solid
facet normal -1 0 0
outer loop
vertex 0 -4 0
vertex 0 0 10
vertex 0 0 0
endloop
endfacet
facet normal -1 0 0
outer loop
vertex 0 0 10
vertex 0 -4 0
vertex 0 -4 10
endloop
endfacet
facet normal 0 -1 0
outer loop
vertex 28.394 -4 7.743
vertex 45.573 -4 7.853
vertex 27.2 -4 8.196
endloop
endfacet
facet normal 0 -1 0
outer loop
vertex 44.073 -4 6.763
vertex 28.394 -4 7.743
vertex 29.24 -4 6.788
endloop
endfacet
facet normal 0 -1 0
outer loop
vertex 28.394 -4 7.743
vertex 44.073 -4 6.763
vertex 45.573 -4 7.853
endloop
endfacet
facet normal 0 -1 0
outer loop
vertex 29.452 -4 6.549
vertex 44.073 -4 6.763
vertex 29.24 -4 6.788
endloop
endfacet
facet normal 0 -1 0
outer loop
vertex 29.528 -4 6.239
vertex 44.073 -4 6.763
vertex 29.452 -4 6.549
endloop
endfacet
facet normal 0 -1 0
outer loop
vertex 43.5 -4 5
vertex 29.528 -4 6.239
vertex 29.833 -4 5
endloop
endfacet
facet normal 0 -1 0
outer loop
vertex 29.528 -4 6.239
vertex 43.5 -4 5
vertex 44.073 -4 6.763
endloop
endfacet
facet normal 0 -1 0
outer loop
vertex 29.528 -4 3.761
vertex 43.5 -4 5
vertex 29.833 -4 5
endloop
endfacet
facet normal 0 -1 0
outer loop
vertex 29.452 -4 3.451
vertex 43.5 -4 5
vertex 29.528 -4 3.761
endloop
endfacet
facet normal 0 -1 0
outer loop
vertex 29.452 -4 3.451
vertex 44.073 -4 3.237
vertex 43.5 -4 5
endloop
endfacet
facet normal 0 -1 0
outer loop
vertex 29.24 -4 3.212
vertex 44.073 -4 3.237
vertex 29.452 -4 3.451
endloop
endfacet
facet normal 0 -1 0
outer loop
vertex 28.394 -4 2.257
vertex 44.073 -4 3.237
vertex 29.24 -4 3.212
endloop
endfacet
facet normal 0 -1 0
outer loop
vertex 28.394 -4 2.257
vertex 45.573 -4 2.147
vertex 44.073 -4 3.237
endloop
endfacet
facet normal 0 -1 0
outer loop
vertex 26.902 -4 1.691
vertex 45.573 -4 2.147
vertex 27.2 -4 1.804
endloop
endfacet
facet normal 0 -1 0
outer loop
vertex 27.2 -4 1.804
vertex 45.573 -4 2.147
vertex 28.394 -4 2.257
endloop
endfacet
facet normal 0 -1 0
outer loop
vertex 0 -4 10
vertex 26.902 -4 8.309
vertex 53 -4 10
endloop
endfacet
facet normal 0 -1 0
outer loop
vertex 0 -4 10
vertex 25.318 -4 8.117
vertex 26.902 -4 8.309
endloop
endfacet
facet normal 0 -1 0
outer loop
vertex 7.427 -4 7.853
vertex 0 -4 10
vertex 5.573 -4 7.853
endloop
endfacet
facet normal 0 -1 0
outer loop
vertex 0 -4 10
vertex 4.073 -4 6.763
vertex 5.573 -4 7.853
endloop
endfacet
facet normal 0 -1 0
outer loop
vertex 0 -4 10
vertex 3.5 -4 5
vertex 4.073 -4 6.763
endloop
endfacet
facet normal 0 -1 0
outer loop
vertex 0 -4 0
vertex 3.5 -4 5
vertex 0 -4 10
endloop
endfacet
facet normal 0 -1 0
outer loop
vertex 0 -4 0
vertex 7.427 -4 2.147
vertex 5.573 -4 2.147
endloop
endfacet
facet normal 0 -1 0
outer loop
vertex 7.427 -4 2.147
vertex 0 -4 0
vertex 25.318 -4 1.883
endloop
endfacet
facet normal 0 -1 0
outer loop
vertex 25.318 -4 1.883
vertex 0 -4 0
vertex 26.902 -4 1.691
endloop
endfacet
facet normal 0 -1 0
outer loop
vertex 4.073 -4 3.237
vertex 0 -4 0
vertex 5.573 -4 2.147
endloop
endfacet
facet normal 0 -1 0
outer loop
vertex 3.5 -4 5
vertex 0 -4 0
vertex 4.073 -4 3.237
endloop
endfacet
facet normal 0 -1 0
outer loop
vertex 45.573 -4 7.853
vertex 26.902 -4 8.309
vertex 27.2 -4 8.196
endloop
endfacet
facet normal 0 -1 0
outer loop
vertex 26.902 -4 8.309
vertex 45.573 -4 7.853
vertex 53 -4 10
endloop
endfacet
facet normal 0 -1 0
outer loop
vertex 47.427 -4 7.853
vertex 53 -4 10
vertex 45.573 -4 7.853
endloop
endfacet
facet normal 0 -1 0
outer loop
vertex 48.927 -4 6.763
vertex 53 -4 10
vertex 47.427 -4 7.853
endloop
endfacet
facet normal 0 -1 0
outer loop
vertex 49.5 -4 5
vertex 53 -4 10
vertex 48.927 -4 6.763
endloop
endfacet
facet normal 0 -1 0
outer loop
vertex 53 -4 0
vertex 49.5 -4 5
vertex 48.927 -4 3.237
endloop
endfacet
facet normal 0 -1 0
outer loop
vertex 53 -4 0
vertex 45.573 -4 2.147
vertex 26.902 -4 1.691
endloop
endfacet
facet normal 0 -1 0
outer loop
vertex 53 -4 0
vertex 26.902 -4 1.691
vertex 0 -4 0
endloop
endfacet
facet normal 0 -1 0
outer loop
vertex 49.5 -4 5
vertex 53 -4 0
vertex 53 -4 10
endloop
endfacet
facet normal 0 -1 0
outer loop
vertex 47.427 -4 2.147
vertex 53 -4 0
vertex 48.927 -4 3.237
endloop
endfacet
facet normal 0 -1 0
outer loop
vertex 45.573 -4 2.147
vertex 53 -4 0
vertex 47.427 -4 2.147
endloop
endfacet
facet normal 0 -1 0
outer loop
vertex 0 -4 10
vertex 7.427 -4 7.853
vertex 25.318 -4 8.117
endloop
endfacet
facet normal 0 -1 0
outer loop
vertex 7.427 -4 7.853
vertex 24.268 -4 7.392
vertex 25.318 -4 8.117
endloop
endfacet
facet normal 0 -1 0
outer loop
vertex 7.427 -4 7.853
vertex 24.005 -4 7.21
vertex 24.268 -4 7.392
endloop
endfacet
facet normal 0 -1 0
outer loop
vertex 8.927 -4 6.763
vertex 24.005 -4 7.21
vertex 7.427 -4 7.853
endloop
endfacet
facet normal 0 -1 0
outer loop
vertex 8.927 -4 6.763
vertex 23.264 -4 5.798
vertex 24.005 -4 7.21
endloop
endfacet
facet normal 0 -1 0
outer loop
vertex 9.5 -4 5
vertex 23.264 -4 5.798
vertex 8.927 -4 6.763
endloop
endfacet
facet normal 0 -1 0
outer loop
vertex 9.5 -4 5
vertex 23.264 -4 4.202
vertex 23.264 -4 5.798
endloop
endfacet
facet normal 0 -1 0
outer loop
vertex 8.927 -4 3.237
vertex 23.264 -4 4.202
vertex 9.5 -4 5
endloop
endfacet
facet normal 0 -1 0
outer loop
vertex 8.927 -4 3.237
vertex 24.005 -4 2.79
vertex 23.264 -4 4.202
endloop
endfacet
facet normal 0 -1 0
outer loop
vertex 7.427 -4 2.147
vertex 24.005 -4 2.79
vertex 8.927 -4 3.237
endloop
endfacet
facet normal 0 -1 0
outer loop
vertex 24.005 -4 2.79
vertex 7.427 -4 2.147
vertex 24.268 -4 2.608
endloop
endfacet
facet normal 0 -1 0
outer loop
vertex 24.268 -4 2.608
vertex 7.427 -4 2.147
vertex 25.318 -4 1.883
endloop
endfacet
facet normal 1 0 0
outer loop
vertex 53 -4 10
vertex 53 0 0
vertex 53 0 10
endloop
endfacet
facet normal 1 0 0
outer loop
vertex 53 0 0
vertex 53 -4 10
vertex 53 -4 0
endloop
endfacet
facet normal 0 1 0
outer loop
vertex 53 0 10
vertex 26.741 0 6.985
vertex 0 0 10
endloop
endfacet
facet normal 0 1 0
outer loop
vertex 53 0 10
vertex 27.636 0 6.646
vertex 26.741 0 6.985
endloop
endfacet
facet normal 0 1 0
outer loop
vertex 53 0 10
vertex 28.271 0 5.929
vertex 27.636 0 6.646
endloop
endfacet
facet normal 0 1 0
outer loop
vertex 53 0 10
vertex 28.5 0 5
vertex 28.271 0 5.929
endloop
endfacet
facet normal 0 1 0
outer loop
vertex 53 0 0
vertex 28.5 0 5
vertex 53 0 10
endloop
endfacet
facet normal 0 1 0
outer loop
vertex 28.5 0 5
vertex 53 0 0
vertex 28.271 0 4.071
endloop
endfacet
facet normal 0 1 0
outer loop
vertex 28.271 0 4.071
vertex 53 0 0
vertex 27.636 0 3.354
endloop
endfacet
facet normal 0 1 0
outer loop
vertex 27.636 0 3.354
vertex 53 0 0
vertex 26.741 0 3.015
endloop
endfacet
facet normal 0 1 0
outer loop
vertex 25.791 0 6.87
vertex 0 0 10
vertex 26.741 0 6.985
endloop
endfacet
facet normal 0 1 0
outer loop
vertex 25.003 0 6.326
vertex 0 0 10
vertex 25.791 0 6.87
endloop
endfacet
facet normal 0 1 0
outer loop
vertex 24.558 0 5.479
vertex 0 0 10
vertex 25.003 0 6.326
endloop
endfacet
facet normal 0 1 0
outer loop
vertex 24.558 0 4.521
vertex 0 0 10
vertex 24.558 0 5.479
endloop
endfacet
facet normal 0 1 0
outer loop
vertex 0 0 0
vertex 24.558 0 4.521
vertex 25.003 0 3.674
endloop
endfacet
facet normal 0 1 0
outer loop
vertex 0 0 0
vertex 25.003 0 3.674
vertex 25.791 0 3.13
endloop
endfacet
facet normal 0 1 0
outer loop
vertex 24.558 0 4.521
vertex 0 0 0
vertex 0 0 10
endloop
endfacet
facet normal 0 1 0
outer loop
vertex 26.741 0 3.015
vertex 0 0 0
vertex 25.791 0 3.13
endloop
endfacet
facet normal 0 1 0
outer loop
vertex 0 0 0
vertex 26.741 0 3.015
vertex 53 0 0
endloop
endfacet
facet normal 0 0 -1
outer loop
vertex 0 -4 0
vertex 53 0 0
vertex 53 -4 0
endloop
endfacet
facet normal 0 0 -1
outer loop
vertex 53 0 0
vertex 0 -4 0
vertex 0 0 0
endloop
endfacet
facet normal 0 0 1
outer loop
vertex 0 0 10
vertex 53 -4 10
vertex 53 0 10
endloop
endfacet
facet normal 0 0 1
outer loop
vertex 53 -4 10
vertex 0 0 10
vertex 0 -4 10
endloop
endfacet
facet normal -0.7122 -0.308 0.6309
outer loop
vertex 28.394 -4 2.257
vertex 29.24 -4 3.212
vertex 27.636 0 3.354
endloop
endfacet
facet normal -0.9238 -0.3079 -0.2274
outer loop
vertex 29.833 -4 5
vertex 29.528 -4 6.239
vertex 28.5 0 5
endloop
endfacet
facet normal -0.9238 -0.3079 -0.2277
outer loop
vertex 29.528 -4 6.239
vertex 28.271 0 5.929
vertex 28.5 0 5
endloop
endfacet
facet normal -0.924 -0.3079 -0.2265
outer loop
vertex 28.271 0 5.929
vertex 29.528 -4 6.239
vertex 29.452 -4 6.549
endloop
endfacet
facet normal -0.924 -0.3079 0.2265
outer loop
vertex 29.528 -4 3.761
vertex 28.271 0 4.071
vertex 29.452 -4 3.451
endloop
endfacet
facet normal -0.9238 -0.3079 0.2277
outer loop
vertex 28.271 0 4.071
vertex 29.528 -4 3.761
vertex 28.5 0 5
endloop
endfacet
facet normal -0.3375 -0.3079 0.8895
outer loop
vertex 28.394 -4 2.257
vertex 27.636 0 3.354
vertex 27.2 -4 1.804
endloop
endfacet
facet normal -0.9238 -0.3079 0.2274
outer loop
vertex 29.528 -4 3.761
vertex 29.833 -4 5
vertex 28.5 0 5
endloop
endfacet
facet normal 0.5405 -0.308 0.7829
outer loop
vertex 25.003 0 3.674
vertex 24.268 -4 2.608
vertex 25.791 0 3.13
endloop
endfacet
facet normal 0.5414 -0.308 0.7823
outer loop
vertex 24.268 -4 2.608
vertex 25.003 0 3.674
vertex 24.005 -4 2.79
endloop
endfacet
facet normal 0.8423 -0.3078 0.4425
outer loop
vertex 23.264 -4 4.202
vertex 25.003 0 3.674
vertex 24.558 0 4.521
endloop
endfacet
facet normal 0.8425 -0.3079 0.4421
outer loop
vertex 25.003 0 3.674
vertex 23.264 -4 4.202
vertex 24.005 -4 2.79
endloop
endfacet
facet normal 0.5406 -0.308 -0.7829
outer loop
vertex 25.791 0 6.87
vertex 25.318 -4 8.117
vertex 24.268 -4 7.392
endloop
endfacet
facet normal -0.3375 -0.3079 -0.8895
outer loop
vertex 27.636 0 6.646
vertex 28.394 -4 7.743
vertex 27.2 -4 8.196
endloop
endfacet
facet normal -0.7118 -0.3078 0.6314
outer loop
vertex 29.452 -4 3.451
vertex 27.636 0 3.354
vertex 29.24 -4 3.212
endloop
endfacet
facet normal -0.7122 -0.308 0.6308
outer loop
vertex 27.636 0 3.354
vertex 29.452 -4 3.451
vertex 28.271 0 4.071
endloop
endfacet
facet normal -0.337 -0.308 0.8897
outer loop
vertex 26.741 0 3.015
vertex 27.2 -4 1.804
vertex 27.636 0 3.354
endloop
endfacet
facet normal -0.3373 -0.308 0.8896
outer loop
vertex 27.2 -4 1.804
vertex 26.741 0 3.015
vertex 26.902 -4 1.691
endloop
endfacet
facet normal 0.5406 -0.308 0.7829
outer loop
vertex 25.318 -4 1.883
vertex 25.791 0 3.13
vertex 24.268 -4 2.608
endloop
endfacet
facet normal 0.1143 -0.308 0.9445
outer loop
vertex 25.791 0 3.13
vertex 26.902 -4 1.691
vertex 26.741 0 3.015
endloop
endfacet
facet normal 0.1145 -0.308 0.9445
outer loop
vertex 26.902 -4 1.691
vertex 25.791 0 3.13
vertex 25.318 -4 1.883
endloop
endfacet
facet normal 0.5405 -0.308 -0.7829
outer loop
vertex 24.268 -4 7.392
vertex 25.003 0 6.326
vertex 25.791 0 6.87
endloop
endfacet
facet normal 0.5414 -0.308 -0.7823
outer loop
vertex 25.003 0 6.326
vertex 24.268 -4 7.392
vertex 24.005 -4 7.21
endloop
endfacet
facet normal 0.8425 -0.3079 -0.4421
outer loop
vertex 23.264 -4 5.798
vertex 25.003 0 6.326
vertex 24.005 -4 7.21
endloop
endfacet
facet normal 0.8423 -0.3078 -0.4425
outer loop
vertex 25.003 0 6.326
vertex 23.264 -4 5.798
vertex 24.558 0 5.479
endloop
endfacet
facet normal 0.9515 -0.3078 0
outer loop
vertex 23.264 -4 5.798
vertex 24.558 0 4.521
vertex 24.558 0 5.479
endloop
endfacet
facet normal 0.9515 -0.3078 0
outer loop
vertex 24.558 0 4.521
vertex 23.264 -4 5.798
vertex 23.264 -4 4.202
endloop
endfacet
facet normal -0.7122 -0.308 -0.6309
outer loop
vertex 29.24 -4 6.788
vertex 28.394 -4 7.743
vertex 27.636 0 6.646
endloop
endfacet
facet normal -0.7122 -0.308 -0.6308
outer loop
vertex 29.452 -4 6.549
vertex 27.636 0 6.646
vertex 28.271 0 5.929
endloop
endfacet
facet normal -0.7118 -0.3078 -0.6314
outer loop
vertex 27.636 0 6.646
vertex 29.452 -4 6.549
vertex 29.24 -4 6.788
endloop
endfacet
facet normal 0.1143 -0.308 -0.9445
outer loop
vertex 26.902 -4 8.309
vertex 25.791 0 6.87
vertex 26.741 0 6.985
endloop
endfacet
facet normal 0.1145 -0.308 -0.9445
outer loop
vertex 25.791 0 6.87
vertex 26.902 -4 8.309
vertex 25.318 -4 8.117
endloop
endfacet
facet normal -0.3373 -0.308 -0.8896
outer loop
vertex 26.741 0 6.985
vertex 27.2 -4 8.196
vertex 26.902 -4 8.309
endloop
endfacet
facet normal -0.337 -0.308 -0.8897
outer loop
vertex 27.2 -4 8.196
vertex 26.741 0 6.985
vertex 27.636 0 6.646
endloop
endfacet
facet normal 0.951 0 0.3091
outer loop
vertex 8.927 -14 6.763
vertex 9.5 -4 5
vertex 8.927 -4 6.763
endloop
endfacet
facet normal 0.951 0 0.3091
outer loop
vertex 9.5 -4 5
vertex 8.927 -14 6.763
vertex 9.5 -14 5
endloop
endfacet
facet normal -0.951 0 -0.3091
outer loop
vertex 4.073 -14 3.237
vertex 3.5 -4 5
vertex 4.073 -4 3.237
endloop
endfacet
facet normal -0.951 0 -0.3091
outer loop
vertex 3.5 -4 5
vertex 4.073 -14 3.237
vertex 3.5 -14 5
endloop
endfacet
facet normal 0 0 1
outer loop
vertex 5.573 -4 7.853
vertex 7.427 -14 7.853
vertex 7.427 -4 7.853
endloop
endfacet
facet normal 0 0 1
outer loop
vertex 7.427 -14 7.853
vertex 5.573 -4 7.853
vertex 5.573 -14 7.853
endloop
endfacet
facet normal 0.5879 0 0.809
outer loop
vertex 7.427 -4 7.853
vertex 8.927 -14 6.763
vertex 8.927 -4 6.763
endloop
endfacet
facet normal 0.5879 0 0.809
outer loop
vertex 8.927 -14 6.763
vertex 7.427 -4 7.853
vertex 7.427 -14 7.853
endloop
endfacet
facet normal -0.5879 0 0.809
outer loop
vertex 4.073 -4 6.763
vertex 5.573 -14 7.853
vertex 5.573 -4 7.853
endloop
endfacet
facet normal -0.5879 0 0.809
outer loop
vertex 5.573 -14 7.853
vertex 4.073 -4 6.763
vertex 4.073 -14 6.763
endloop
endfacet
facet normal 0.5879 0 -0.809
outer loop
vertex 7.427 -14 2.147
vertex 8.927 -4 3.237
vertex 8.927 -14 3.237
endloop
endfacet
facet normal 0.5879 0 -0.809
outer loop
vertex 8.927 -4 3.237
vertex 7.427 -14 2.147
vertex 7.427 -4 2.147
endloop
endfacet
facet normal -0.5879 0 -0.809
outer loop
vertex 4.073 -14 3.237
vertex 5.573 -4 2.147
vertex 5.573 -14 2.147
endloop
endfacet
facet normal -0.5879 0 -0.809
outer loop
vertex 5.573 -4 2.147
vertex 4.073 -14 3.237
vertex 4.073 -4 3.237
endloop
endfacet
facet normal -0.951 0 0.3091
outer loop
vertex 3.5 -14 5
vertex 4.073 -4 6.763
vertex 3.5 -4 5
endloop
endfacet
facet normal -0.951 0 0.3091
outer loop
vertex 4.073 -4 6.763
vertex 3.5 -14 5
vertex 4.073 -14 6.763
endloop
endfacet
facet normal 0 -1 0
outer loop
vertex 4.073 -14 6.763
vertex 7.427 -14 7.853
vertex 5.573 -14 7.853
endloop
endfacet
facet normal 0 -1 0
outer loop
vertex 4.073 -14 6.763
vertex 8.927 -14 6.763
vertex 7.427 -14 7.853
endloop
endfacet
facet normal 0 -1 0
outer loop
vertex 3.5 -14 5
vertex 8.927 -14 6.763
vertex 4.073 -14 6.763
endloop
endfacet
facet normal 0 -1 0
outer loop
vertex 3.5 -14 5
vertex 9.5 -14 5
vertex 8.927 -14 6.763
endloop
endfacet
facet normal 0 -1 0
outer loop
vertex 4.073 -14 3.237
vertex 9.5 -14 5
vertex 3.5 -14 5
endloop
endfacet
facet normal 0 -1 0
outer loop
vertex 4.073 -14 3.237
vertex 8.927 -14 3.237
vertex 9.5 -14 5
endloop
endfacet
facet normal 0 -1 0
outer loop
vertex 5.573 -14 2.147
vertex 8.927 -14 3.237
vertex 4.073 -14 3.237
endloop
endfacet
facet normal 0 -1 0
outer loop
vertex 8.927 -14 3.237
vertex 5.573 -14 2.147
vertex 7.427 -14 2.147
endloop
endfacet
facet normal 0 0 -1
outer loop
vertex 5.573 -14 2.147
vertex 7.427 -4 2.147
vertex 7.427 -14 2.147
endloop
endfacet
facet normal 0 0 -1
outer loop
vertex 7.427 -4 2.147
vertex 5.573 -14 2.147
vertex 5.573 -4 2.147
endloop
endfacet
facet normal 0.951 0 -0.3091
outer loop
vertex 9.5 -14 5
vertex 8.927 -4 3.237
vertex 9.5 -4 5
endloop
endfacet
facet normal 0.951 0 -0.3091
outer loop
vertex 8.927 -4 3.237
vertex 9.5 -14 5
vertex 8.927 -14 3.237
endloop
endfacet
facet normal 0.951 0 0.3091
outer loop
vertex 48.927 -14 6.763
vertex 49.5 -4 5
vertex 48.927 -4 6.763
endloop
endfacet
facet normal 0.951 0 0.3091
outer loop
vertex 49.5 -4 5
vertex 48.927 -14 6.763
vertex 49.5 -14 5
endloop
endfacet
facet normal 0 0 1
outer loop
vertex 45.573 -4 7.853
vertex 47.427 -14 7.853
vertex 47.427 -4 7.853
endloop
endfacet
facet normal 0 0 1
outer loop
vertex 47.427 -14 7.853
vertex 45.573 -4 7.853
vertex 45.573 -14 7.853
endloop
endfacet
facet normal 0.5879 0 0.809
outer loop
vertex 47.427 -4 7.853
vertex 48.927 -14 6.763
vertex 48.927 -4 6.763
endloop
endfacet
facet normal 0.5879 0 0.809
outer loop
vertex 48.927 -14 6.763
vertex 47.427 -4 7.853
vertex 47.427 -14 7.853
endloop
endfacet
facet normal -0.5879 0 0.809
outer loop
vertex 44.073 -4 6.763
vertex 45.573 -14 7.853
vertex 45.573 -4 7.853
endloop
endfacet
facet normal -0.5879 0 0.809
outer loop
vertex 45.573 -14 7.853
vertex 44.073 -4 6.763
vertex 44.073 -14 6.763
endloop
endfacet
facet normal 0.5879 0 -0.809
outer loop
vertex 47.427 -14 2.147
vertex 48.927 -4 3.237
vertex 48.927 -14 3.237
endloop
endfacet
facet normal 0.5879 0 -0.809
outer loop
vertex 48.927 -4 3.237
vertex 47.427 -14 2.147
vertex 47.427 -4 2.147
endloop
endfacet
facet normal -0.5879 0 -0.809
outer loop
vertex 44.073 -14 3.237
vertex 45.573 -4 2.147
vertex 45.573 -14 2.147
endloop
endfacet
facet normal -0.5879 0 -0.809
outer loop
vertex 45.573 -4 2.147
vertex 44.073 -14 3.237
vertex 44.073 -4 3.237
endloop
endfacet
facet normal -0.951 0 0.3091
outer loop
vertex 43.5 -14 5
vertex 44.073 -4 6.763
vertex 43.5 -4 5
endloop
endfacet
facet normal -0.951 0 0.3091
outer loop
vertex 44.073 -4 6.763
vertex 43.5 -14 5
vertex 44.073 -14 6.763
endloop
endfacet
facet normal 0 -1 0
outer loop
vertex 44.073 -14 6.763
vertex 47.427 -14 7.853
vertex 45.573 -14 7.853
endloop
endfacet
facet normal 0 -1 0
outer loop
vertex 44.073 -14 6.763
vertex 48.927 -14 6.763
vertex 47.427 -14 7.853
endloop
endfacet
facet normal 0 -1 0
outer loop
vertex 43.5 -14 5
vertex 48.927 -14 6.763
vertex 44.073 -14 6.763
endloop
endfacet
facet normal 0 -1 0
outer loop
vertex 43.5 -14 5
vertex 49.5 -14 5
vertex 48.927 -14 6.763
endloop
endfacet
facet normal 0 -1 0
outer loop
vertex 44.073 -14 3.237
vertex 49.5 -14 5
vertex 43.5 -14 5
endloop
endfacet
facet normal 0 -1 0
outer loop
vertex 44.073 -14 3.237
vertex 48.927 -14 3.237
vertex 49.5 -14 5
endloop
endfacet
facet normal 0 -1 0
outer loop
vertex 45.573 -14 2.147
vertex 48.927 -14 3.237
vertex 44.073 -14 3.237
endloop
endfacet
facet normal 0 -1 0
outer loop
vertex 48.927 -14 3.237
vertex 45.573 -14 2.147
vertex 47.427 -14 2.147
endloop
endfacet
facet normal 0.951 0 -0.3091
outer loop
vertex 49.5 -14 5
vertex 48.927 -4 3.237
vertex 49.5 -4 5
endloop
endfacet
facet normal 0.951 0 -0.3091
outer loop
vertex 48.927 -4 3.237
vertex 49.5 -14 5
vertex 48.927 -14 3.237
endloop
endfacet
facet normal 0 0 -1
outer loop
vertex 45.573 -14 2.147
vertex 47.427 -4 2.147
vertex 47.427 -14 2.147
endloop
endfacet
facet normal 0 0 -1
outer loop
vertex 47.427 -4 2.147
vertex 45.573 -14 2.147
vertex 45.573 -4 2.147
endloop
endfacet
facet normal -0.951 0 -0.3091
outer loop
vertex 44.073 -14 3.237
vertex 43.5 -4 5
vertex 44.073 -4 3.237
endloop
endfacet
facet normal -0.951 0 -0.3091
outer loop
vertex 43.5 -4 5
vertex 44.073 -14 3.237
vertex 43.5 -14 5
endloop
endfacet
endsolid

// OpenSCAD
width = 53;
height = 10;
thickness = 4;

diameter = 6;
pinHeight = 14;

distanceBetweenPin = 34 + 2 * diameter / 2;

module pin() {
    cylinder(r=diameter/2, pinHeight);
} 

rotate([90, 0, 0]) {
    difference() {
        cube([width, height, thickness]);
        translate([width / 2, height / 2, 0]) cylinder(r1=2, r2=4, thickness + 2);
    }
    translate([(width - distanceBetweenPin) / 2, height / 2, 0]) pin();
    translate([(width - distanceBetweenPin) / 2 + distanceBetweenPin, height / 2, 0]) pin();
}
